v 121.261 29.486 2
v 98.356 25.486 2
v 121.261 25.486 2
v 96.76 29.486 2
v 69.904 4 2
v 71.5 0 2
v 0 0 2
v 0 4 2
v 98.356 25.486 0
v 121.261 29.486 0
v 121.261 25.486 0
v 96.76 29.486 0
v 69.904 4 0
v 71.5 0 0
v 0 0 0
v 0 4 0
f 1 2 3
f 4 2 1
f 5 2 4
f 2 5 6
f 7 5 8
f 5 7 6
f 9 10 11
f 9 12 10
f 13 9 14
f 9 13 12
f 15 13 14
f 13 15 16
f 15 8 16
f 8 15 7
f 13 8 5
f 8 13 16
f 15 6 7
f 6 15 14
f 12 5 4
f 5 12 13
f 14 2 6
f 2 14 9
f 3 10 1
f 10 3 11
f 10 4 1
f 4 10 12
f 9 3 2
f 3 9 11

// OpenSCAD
height = 2;
width = 4;

l1 = 71.5;
l2 = 38.62;
l3=24.5;

// python
// math.acos(28/38.62) / math.pi * 180
theta= 43.5;

cube([l1, width, height]);
translate([l1, 0, 0])
    rotate([0, 0, theta])
    cube([l2, width, height]);


l2modx = cos(theta) * l2 - width * sin(theta);
l2mody = sin(theta) * l2  - width * (1-cos(theta));
translate([l1+l2modx, l2mody, 0])
    cube([l3, width, height]);
